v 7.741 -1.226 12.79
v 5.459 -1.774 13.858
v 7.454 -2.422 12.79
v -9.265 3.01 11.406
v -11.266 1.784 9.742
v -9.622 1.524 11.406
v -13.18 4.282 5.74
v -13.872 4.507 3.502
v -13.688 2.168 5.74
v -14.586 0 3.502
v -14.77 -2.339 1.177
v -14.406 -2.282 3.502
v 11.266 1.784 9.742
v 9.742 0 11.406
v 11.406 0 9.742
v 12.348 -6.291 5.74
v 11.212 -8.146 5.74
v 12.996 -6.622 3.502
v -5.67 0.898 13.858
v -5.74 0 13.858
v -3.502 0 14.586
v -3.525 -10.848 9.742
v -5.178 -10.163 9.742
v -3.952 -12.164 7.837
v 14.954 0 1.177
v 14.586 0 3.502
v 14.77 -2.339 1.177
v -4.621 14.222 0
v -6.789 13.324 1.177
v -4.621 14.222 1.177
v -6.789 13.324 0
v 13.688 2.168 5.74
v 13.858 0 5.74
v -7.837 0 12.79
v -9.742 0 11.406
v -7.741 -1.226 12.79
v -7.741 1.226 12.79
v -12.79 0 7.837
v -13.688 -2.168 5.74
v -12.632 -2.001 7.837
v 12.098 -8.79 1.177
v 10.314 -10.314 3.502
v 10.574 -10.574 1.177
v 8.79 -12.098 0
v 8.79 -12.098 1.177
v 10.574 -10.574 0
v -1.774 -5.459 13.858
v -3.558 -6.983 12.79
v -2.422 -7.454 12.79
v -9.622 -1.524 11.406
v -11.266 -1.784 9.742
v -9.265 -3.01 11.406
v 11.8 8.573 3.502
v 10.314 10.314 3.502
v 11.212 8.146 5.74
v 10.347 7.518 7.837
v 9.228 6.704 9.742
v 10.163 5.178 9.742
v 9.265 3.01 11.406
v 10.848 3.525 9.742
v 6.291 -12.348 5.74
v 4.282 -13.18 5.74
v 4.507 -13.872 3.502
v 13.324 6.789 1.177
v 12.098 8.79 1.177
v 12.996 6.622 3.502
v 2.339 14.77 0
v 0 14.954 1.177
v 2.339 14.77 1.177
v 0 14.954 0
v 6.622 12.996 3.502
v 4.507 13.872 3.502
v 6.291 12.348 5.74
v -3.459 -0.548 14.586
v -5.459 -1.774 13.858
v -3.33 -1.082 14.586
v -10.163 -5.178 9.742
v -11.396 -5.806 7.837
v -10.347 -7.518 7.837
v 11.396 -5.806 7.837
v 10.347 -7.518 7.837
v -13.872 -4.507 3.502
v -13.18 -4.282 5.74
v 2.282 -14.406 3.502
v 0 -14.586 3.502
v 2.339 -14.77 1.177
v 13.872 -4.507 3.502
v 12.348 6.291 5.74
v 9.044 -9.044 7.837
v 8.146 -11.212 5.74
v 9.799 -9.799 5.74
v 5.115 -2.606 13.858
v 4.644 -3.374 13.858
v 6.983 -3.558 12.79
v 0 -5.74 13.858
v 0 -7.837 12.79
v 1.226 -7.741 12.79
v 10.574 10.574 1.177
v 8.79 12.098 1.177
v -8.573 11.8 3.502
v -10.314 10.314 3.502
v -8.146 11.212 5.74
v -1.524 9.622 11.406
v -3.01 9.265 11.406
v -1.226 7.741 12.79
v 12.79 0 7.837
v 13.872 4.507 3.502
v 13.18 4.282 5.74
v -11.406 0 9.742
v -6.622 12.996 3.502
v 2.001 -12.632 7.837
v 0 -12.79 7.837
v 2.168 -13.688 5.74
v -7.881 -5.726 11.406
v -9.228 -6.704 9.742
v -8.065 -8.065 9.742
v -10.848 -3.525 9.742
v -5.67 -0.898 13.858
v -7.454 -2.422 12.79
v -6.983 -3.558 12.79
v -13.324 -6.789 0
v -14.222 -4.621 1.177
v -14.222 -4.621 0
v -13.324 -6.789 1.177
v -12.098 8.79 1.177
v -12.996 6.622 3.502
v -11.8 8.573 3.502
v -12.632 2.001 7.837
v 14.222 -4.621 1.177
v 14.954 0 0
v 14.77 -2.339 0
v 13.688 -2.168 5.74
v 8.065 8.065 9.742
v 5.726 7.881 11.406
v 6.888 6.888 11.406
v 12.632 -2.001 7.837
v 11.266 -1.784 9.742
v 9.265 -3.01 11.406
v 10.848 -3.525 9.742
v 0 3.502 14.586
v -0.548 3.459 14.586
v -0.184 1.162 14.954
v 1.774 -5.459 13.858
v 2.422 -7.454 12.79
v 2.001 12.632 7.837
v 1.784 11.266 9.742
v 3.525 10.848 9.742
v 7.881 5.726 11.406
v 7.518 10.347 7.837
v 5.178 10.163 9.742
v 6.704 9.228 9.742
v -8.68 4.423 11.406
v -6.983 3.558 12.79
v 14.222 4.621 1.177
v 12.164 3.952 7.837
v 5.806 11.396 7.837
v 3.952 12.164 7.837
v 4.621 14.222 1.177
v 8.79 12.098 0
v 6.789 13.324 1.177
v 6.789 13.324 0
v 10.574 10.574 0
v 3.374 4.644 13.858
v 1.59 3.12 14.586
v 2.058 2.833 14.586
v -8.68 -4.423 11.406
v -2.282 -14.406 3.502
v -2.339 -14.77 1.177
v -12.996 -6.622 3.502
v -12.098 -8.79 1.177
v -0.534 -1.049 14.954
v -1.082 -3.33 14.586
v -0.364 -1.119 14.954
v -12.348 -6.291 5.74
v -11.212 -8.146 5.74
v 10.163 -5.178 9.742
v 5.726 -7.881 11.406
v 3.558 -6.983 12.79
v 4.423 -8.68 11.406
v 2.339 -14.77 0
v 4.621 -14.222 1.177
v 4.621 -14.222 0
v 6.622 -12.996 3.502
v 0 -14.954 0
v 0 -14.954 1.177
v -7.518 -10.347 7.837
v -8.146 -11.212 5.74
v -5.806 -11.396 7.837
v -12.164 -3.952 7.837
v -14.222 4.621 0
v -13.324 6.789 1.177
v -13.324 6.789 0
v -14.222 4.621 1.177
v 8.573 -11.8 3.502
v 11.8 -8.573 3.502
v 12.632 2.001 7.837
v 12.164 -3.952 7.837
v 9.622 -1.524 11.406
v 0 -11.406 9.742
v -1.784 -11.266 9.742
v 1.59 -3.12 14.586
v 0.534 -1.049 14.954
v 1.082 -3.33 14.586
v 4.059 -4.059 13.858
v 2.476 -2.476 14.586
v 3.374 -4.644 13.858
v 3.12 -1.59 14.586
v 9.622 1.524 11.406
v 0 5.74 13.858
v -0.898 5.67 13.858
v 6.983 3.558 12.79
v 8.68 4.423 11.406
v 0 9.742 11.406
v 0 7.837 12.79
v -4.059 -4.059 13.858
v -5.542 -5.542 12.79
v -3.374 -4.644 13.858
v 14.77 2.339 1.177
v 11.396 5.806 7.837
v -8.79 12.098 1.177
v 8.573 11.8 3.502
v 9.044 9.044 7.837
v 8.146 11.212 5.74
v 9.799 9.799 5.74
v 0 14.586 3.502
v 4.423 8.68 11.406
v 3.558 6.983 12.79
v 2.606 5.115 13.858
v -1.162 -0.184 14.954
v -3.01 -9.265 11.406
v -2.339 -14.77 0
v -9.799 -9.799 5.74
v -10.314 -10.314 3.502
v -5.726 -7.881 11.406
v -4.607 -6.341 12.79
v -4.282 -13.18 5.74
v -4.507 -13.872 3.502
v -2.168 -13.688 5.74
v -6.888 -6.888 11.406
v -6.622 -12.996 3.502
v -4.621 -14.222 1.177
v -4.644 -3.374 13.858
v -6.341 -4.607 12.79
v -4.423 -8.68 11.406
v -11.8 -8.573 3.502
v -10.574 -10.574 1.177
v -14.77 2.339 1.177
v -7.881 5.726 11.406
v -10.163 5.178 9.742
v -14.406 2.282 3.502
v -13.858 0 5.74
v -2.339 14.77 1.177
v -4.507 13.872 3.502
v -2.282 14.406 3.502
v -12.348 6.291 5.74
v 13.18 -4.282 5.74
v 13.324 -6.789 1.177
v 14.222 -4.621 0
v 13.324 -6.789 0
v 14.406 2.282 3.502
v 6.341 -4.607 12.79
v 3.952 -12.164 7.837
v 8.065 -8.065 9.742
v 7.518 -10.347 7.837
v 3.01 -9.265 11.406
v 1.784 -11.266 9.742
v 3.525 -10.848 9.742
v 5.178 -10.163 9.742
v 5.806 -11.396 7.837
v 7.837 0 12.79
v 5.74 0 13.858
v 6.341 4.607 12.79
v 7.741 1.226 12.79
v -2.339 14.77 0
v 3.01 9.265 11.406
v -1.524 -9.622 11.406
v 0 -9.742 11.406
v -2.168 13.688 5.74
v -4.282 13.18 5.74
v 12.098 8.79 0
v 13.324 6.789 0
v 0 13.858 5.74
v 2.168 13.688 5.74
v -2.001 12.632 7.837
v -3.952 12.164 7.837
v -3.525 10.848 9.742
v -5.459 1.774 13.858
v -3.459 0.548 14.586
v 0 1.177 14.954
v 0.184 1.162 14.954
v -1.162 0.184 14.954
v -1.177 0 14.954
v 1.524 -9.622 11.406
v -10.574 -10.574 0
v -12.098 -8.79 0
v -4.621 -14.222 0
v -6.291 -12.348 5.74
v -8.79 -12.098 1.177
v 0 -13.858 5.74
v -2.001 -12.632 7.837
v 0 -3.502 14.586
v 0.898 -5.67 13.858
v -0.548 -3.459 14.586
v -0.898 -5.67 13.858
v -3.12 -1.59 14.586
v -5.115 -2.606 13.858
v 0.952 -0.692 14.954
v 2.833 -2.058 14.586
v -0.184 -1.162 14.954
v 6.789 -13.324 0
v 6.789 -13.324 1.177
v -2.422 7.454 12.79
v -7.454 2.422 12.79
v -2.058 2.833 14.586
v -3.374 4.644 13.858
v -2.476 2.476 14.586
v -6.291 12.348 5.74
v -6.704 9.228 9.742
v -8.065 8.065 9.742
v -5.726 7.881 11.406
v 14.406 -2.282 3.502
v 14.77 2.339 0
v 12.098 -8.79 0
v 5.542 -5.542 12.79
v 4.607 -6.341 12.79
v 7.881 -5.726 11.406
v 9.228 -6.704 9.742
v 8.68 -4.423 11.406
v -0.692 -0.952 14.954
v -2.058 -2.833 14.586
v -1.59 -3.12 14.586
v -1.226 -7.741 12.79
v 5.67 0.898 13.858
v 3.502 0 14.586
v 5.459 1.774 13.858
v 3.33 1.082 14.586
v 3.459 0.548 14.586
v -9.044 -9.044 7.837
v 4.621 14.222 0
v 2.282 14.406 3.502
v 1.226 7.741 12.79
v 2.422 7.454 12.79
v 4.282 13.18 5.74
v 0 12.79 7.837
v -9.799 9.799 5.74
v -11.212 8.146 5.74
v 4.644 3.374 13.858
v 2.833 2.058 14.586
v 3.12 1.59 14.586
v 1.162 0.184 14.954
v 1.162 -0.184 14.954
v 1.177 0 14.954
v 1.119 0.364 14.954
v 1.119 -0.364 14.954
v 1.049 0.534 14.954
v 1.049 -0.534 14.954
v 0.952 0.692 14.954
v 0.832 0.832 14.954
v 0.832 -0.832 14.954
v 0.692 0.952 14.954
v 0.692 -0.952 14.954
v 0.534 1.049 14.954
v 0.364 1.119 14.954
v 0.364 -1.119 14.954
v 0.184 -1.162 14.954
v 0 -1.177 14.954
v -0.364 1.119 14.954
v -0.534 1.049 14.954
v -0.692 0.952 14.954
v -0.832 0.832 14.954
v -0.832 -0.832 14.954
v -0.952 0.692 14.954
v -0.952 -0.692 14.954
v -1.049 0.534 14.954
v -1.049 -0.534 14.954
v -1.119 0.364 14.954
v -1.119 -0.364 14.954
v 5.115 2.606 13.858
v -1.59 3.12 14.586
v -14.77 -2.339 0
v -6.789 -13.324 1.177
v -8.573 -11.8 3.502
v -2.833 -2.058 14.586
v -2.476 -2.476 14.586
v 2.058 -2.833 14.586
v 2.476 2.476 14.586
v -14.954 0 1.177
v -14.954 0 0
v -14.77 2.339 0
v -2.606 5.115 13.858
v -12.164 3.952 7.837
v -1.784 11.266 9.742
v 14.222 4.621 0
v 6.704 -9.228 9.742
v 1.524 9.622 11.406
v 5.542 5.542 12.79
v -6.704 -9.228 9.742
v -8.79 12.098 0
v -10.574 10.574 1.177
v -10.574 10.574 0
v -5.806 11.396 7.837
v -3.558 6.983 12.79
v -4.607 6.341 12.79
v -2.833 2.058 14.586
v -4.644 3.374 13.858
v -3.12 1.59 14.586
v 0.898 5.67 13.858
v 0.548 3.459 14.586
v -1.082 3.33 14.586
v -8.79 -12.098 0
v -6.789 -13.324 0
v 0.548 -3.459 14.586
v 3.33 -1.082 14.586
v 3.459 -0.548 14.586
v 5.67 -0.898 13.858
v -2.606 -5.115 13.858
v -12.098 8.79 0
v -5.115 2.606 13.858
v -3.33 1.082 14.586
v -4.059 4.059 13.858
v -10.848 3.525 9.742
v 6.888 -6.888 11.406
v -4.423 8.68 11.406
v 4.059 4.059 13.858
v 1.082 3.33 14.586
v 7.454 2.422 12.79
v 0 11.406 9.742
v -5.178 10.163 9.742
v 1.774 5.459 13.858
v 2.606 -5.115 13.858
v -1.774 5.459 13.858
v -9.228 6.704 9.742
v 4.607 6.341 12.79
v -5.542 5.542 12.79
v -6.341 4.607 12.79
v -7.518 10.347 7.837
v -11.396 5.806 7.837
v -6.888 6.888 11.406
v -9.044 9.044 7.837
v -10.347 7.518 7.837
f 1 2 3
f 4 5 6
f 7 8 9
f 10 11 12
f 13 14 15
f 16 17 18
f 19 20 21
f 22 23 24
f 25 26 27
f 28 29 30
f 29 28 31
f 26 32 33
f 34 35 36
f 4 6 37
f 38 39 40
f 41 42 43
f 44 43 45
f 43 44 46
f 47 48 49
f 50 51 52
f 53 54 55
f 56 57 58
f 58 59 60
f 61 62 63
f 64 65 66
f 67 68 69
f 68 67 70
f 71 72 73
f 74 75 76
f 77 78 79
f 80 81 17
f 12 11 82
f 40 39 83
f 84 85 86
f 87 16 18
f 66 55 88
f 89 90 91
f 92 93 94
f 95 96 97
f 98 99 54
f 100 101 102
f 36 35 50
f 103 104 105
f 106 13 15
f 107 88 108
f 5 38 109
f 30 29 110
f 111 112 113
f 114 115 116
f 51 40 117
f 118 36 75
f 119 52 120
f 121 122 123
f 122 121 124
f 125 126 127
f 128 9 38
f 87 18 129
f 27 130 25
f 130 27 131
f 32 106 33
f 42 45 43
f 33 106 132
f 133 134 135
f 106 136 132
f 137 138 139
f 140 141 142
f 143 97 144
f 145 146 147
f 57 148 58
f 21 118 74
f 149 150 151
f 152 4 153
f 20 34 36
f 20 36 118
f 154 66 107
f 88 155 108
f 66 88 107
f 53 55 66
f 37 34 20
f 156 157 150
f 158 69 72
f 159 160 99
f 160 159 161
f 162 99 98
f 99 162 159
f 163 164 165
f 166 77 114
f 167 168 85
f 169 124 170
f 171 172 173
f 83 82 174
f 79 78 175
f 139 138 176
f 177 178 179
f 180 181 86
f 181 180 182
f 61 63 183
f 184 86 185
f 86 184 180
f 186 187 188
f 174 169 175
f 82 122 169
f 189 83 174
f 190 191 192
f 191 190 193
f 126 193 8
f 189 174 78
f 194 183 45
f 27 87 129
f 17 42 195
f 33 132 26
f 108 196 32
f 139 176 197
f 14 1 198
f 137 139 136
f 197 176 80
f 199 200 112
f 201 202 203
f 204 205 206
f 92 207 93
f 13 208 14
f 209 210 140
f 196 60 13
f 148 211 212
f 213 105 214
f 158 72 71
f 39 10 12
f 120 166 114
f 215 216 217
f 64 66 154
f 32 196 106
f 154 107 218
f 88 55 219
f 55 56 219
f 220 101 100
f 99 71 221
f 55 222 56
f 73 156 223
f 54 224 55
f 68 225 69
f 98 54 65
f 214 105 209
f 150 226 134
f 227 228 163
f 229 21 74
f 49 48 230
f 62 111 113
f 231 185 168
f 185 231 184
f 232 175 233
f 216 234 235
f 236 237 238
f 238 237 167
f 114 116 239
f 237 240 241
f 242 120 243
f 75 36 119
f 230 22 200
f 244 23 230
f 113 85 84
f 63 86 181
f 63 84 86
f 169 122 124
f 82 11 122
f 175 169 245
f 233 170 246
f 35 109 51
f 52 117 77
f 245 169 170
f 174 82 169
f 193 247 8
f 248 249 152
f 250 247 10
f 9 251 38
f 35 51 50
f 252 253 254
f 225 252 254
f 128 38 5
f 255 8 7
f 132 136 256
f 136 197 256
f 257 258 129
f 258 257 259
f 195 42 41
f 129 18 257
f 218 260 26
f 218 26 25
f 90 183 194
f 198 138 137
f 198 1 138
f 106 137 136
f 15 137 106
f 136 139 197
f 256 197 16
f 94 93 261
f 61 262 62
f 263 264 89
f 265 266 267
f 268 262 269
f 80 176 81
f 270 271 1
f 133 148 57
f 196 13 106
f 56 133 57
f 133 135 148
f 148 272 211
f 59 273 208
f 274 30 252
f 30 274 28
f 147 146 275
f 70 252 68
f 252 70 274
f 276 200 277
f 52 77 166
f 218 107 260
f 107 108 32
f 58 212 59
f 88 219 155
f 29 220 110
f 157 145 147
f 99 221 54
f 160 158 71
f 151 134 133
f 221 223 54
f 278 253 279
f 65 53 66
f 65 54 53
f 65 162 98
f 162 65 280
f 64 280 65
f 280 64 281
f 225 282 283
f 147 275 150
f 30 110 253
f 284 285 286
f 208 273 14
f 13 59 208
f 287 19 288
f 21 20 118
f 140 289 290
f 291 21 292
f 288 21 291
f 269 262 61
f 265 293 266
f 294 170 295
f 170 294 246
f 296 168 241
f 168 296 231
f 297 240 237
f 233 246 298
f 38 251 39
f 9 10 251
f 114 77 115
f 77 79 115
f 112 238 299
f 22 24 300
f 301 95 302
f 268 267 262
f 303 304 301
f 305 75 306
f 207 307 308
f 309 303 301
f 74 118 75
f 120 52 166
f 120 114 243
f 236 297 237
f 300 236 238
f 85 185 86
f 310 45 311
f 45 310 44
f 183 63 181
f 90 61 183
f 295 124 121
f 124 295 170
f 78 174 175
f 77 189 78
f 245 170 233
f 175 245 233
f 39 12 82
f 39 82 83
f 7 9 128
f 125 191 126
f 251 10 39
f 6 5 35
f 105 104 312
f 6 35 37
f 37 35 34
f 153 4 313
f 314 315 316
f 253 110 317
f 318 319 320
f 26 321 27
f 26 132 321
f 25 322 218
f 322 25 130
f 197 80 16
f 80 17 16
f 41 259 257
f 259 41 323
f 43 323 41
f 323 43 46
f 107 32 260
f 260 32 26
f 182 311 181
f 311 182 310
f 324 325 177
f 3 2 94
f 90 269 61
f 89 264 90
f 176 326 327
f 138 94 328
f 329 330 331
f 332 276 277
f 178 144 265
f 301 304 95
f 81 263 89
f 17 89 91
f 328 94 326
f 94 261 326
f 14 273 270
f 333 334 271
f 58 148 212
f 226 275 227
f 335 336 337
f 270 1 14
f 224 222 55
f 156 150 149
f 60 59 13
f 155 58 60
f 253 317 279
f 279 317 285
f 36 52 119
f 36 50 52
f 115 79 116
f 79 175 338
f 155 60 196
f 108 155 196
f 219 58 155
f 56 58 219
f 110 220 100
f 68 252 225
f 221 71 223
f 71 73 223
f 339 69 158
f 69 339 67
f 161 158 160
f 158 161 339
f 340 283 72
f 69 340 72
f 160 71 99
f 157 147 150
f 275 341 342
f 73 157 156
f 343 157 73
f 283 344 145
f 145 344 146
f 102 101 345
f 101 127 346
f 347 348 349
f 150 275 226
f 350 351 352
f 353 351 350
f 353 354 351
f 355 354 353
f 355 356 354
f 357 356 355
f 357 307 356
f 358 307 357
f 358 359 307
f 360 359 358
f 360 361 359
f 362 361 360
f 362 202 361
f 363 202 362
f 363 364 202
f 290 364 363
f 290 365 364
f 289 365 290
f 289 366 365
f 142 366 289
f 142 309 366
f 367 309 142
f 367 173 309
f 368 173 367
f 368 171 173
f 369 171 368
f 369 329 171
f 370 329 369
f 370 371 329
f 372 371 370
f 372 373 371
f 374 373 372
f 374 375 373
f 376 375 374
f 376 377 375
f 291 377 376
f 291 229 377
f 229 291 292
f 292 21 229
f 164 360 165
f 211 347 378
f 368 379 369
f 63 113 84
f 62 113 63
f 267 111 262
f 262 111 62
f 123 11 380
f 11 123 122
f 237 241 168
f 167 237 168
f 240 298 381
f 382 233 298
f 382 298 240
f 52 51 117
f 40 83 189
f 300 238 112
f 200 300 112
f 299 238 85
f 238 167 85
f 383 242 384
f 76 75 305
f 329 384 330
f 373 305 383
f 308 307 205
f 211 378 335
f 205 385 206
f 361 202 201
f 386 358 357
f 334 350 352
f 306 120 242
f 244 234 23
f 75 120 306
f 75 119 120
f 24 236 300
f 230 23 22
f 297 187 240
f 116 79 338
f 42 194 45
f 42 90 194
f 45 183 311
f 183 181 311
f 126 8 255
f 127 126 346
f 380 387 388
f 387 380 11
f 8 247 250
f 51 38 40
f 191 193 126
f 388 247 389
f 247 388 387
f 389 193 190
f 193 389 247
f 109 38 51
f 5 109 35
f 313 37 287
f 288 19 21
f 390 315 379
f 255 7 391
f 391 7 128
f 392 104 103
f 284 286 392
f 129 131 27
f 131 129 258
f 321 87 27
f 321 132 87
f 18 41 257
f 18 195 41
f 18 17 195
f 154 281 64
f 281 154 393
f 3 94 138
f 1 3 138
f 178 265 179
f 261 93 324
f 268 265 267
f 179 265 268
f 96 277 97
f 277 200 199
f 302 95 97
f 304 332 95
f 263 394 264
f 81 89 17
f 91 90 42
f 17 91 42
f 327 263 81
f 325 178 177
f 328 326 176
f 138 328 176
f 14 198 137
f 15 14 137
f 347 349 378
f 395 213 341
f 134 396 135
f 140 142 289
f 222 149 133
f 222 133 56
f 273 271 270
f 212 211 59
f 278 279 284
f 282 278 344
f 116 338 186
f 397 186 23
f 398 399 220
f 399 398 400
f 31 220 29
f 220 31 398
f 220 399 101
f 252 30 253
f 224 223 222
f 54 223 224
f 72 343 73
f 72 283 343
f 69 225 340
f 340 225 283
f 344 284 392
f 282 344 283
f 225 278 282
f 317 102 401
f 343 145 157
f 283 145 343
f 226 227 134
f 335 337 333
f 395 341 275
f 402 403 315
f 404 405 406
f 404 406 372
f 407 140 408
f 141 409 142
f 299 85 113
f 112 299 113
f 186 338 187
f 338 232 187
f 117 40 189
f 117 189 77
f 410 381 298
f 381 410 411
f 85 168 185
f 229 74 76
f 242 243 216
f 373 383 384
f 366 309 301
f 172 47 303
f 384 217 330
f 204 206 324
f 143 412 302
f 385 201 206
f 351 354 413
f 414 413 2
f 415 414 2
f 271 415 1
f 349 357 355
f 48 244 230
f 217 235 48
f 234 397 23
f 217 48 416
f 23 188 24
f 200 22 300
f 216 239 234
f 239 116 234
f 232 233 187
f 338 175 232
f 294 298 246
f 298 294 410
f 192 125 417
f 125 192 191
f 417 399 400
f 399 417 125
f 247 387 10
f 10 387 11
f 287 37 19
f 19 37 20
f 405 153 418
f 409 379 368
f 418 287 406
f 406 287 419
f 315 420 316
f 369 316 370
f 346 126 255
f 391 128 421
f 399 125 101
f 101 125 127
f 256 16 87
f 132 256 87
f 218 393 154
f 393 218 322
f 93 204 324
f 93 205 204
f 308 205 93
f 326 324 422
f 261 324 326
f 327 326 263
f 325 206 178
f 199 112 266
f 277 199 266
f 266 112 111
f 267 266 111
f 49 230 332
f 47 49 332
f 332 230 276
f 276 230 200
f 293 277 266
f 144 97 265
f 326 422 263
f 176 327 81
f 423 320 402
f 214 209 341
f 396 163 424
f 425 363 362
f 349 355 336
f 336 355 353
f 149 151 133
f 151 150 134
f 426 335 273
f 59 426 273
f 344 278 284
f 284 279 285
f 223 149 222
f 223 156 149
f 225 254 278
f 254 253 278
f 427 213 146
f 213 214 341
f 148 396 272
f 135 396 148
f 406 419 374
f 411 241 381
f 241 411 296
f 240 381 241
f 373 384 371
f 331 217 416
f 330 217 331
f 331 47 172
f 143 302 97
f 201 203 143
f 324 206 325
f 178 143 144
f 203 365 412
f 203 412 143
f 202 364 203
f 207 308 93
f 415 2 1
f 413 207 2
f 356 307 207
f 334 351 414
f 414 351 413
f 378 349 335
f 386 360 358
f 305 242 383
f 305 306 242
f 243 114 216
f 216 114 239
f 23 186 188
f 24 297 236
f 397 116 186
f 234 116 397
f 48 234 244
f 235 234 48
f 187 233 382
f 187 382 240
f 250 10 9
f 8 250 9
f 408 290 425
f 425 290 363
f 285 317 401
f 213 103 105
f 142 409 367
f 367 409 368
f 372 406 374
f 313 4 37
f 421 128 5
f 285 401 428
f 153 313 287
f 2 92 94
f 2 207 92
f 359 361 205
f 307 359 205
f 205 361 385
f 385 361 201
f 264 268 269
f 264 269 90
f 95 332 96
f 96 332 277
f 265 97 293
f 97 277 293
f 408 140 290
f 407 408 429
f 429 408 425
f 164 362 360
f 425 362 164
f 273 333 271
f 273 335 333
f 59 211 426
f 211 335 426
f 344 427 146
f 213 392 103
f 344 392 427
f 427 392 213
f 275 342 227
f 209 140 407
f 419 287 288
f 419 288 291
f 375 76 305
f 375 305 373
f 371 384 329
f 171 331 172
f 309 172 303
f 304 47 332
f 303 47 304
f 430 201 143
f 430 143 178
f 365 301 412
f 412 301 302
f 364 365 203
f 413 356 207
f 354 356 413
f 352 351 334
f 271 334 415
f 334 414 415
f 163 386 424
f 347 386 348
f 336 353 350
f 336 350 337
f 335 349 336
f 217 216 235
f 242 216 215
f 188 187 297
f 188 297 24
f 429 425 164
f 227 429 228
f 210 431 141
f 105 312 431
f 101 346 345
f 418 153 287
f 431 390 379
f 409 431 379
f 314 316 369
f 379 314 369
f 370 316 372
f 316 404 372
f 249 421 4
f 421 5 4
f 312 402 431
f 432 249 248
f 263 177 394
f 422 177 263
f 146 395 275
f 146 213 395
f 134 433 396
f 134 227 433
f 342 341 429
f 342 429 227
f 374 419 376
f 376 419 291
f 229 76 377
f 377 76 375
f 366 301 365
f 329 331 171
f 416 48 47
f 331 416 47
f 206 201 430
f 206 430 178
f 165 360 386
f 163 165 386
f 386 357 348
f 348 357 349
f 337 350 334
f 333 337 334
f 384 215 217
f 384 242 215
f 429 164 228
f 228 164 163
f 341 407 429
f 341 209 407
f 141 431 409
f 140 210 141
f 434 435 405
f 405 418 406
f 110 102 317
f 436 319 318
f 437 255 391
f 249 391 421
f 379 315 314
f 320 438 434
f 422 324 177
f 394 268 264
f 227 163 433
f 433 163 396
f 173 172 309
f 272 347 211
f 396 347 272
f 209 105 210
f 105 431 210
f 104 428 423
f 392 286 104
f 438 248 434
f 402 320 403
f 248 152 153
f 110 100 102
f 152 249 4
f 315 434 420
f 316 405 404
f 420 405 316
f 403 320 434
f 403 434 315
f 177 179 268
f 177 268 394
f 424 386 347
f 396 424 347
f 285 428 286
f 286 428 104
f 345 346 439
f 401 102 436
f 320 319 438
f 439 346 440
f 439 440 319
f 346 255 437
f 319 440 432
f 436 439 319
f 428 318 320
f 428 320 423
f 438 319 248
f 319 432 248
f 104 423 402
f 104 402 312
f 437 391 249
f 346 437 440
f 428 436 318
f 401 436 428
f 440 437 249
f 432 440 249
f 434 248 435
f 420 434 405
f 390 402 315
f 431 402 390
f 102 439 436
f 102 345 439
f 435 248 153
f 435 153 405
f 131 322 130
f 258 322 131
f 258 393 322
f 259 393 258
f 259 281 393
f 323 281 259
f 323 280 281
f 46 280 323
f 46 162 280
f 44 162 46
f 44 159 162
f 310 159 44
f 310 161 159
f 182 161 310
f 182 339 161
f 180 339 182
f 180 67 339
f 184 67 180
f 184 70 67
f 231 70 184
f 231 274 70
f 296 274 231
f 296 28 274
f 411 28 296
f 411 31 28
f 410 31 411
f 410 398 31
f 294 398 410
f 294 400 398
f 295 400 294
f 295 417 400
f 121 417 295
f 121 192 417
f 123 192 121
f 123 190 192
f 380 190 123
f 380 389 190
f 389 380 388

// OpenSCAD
difference() {
    sphere(15, $fn=40);
    translate([0,0,-15]) cube(30, center=true);
}
